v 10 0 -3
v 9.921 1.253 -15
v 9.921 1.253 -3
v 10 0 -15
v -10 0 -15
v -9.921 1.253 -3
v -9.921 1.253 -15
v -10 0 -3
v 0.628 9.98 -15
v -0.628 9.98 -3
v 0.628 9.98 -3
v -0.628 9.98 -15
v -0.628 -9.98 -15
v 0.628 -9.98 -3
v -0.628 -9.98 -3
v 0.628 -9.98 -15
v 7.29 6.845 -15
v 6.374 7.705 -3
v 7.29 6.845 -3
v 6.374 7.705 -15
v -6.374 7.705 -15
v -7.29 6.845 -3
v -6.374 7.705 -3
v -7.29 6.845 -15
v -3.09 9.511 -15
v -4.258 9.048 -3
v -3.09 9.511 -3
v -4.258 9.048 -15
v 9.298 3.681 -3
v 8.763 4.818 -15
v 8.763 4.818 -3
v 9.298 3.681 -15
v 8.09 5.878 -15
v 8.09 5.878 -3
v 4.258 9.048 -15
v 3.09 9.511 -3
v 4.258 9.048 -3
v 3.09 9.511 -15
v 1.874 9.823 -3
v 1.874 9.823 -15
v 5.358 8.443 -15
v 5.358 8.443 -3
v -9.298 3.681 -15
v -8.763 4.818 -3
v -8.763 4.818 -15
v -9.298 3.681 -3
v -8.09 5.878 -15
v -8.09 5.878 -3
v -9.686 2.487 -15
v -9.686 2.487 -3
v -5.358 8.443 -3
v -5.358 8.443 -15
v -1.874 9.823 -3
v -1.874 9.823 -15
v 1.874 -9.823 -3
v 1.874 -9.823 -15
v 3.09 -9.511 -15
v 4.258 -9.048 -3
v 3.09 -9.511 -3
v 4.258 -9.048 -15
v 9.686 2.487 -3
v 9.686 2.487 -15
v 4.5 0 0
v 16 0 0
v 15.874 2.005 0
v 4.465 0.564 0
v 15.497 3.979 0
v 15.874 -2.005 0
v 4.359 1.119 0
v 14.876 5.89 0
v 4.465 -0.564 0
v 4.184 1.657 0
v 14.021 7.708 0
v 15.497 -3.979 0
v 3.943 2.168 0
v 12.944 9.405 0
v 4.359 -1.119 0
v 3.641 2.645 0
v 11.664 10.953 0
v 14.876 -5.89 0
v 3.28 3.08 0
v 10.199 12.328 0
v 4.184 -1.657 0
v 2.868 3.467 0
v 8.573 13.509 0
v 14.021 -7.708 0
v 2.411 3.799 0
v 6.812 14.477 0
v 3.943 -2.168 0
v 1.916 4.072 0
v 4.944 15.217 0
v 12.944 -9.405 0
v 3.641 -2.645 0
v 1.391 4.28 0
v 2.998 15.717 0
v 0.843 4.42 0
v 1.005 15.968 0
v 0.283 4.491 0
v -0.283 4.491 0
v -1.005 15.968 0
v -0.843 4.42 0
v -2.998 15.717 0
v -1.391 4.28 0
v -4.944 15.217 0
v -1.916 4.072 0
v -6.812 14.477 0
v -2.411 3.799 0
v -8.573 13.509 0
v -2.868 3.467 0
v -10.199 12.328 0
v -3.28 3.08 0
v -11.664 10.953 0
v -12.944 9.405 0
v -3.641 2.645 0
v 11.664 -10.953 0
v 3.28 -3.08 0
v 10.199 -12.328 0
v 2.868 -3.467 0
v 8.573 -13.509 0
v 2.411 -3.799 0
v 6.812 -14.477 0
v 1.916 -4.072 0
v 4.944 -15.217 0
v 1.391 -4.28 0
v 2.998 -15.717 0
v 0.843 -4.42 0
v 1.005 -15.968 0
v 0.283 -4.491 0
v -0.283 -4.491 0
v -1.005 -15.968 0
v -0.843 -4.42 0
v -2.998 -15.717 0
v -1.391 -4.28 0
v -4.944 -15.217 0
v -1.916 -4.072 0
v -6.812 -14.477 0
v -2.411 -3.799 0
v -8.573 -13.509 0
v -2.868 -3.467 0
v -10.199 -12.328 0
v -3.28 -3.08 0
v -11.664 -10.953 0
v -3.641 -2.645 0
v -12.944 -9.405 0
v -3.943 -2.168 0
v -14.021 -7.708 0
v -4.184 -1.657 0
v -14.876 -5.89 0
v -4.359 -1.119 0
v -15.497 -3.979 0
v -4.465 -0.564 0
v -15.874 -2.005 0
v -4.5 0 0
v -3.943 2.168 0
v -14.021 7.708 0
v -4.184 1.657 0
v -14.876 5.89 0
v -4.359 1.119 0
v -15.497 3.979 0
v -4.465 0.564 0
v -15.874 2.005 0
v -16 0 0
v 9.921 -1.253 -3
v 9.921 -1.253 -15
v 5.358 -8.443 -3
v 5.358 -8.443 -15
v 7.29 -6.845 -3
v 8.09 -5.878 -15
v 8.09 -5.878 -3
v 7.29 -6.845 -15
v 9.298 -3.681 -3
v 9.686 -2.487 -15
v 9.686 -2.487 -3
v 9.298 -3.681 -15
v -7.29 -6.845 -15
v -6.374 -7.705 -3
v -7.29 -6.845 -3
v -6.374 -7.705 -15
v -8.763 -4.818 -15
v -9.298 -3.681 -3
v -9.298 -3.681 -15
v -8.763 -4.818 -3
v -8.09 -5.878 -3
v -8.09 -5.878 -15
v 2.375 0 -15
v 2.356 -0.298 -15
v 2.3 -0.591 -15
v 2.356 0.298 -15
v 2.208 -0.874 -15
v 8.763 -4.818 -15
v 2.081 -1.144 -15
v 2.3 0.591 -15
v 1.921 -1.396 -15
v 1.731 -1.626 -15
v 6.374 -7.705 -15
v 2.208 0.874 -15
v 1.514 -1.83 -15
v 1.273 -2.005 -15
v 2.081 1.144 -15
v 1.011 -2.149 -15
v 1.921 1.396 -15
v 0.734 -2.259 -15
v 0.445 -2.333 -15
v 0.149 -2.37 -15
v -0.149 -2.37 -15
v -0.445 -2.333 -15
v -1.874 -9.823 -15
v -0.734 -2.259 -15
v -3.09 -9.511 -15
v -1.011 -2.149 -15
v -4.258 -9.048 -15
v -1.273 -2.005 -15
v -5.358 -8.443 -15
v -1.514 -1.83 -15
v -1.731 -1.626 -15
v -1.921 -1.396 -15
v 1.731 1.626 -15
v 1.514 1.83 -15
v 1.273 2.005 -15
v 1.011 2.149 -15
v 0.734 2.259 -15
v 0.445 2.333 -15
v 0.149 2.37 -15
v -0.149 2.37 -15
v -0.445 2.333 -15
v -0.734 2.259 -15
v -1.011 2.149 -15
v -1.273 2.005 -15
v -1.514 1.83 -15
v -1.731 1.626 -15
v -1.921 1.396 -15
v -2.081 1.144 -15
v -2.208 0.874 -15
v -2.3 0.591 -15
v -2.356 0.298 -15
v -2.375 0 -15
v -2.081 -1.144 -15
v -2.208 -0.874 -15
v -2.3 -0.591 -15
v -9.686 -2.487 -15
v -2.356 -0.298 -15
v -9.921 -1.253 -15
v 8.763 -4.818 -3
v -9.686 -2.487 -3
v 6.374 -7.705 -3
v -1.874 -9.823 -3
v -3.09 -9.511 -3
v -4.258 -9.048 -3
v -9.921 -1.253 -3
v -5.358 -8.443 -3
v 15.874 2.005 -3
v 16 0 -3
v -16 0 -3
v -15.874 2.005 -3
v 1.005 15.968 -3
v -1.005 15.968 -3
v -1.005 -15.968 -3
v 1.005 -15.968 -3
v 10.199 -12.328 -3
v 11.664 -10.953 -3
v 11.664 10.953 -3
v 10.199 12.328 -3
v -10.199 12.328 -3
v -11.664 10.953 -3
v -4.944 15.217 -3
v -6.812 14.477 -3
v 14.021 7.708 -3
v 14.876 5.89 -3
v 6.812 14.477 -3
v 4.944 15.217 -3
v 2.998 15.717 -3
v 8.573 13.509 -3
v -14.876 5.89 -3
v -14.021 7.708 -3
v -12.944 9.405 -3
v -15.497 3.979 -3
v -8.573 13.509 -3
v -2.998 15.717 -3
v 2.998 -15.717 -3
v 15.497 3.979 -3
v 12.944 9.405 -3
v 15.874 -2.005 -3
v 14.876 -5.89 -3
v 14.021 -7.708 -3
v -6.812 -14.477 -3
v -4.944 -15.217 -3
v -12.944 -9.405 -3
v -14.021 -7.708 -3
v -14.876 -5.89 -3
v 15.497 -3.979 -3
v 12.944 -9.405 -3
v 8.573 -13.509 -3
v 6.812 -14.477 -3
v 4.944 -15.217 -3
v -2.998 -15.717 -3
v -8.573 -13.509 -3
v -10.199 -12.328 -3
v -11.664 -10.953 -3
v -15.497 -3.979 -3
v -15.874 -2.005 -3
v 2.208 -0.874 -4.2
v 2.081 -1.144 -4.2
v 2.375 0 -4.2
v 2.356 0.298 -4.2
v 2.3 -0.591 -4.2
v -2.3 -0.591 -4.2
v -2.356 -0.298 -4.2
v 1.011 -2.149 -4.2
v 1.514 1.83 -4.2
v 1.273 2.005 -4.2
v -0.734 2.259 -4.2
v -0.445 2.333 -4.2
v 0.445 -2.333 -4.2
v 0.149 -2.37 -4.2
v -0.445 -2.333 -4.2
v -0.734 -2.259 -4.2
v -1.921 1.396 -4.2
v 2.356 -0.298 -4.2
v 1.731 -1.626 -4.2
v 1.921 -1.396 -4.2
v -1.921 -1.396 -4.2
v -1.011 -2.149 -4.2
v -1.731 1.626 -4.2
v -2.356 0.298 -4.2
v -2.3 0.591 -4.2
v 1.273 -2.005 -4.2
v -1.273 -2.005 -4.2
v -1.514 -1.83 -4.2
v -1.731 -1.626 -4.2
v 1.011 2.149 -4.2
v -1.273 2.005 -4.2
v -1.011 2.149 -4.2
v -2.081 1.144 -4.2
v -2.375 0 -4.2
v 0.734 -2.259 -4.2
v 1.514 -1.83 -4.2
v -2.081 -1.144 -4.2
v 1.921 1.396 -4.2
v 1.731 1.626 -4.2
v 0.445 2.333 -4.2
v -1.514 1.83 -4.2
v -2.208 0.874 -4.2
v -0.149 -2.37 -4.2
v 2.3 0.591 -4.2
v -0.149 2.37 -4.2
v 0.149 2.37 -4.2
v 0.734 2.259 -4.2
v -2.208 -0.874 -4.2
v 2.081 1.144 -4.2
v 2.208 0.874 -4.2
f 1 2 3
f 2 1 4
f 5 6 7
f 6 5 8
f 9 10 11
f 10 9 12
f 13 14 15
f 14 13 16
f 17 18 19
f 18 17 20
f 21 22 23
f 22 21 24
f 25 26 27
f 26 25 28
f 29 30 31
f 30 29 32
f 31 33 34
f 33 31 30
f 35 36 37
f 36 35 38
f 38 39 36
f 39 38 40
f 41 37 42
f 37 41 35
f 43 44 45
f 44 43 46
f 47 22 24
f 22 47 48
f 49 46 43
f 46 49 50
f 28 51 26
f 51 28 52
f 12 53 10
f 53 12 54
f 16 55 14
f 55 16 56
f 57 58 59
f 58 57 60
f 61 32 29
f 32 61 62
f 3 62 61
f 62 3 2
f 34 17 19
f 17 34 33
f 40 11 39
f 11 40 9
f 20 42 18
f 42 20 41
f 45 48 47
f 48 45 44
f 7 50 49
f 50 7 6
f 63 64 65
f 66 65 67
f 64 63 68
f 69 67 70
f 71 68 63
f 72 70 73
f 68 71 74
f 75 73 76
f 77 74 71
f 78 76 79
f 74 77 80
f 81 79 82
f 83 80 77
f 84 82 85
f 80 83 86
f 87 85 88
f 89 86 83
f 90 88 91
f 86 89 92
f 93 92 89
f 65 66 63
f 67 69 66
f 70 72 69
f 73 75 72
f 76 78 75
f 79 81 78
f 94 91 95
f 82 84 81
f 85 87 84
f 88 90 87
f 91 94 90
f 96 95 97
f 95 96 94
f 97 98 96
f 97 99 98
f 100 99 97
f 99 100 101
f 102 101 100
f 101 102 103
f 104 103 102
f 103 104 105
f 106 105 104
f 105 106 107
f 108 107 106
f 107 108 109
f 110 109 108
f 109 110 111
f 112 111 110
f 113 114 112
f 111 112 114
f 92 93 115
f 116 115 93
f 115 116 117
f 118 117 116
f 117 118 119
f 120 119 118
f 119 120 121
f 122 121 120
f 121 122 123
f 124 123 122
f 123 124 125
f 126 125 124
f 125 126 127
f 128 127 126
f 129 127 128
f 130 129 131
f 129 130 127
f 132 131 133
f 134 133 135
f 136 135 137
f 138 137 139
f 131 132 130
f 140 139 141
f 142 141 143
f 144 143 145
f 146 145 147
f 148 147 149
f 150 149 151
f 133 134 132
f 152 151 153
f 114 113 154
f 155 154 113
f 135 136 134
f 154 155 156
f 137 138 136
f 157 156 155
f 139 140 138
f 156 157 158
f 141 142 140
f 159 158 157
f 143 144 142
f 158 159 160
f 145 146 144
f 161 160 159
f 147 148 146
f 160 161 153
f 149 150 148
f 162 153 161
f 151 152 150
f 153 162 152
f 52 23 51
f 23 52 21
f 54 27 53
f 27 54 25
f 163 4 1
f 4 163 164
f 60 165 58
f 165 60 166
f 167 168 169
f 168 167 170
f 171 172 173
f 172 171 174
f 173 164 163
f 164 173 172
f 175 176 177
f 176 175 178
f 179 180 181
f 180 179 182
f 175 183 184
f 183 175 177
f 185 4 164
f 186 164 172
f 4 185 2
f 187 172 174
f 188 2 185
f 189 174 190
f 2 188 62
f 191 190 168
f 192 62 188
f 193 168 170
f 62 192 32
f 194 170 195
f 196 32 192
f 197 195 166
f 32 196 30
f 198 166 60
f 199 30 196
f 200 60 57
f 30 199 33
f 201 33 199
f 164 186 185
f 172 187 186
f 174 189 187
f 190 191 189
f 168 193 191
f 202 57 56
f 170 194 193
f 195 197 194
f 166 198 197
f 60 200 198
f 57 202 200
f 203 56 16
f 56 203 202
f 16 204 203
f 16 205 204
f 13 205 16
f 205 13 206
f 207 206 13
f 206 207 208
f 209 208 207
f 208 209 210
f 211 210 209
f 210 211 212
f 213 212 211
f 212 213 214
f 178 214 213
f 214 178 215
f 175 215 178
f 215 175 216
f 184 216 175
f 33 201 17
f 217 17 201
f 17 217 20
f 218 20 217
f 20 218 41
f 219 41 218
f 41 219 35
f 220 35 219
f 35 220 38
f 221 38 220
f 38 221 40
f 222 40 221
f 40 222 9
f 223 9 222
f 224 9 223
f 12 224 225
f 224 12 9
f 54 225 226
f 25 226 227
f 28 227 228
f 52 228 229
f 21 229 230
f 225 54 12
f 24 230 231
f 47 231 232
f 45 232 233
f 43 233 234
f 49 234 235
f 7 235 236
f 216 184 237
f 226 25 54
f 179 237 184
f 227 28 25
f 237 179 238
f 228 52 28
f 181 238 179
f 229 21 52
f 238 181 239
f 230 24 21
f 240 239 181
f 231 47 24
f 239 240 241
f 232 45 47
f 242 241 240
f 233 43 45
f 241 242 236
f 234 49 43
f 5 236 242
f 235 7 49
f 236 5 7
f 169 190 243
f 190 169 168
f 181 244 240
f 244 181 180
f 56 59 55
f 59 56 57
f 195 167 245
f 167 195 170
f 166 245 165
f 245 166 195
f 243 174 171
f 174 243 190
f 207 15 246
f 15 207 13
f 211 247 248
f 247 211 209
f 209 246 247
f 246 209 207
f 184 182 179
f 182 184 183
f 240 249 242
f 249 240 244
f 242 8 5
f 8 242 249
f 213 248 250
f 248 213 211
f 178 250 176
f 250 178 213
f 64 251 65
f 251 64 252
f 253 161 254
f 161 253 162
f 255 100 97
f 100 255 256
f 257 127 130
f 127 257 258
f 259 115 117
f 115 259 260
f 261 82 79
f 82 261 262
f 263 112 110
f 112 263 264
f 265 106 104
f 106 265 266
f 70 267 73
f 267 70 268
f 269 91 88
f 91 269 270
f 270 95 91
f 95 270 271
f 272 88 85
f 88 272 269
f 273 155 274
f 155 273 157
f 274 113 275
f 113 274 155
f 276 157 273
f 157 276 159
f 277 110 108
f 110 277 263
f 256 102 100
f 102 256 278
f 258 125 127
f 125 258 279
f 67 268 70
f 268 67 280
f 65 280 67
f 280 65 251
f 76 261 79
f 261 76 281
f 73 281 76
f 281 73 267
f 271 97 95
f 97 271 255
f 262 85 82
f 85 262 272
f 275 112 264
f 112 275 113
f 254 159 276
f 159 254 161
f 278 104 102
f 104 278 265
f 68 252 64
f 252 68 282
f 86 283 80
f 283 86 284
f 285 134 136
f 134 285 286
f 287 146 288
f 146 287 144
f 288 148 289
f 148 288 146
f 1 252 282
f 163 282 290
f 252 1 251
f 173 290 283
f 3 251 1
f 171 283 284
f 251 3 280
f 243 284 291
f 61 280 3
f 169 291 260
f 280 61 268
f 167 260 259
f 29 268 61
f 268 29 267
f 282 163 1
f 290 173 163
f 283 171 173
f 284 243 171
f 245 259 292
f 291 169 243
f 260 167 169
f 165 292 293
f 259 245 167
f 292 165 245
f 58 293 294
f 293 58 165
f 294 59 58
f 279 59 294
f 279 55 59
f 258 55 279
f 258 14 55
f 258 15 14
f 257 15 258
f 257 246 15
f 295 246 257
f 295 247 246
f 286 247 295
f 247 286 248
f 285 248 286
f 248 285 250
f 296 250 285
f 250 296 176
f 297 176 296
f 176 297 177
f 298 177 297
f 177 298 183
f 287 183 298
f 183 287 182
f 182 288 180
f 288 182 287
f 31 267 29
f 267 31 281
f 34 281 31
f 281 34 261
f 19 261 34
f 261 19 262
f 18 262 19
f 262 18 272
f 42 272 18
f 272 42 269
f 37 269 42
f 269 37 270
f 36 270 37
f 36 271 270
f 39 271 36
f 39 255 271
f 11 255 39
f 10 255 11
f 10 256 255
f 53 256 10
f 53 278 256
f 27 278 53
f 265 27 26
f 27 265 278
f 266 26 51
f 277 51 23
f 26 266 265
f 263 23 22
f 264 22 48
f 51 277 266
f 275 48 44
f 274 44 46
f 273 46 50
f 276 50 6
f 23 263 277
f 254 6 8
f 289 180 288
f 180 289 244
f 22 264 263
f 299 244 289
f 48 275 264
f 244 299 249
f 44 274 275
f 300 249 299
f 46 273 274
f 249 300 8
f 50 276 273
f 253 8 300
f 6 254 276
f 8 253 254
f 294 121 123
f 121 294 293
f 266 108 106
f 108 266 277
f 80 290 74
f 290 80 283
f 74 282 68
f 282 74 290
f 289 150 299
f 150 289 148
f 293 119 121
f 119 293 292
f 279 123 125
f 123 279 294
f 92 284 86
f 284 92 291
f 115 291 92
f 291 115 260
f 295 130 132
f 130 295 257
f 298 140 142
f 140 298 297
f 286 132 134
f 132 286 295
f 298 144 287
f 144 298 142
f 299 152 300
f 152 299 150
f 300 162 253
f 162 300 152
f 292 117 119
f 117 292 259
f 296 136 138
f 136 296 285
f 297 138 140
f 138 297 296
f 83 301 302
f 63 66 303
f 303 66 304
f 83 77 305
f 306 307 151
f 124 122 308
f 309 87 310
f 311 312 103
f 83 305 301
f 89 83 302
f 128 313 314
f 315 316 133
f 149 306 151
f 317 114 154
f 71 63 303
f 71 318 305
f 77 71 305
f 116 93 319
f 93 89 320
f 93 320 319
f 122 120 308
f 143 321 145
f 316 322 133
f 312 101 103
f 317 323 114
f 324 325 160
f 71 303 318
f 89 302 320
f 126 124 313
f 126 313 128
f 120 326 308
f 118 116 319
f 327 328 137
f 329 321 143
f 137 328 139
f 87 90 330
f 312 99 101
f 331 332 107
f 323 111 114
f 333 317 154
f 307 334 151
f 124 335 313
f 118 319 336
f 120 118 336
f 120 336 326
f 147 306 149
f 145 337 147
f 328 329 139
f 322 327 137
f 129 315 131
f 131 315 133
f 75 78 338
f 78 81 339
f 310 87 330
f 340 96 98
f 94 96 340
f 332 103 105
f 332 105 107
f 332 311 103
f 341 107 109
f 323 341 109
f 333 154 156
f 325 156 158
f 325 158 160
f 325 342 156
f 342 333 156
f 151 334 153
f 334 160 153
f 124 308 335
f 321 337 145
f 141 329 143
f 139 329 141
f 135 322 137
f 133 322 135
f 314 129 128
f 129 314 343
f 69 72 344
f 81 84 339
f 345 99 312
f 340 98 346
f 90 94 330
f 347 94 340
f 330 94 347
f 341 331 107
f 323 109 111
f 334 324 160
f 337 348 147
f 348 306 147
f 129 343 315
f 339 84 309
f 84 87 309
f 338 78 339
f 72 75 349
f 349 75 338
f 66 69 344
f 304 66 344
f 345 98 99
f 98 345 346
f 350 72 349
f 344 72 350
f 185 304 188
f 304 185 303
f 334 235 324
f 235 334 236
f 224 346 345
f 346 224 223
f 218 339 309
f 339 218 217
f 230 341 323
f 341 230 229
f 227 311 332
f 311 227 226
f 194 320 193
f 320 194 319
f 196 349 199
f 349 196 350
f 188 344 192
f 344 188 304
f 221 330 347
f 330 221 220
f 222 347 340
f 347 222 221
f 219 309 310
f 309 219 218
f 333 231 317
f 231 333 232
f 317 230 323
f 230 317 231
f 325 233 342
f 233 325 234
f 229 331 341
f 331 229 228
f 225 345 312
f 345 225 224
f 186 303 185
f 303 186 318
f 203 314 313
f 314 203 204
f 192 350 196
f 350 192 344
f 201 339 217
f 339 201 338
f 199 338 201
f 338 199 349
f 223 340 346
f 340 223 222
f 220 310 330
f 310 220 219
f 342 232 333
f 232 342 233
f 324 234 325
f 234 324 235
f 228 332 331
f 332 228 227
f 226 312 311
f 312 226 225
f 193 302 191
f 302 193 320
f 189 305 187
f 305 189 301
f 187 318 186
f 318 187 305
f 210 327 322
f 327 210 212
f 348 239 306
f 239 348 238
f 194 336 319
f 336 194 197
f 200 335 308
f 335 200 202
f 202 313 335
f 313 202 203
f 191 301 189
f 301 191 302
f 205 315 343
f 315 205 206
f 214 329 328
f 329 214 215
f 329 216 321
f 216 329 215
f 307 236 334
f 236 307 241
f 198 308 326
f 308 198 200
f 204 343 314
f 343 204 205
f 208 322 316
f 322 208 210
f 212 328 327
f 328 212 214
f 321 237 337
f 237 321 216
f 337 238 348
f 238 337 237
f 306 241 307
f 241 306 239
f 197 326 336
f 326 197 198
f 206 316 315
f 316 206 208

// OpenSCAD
$fn = 50;


difference() {
	union() {
		translate(v = [0, 0, -15.0000000000]) {
			cylinder(h = 15, r = 10.0000000000);
		}
		translate(v = [0, 0, -3.0000000000]) {
			cylinder(h = 3, r = 16.0000000000);
		}
	}
	union() {
		translate(v = [0, 0, 0]) {
			rotate(a = [0, 0, 0]) {
				difference() {
					union() {
						#translate(v = [0, 0, -15.0000000000]) {
							cylinder(h = 15, r = 2.2500000000);
						}
						#translate(v = [0, 0, -4.2000000000]) {
							cylinder(h = 4.2000000000, r1 = 2.3750000000, r2 = 4.5000000000);
						}
						#translate(v = [0, 0, -15.0000000000]) {
							cylinder(h = 15, r = 2.3750000000);
						}
						#translate(v = [0, 0, -15.0000000000]) {
							cylinder(h = 15, r = 2.2500000000);
						}
					}
					union();
				}
			}
		}
	}
}
